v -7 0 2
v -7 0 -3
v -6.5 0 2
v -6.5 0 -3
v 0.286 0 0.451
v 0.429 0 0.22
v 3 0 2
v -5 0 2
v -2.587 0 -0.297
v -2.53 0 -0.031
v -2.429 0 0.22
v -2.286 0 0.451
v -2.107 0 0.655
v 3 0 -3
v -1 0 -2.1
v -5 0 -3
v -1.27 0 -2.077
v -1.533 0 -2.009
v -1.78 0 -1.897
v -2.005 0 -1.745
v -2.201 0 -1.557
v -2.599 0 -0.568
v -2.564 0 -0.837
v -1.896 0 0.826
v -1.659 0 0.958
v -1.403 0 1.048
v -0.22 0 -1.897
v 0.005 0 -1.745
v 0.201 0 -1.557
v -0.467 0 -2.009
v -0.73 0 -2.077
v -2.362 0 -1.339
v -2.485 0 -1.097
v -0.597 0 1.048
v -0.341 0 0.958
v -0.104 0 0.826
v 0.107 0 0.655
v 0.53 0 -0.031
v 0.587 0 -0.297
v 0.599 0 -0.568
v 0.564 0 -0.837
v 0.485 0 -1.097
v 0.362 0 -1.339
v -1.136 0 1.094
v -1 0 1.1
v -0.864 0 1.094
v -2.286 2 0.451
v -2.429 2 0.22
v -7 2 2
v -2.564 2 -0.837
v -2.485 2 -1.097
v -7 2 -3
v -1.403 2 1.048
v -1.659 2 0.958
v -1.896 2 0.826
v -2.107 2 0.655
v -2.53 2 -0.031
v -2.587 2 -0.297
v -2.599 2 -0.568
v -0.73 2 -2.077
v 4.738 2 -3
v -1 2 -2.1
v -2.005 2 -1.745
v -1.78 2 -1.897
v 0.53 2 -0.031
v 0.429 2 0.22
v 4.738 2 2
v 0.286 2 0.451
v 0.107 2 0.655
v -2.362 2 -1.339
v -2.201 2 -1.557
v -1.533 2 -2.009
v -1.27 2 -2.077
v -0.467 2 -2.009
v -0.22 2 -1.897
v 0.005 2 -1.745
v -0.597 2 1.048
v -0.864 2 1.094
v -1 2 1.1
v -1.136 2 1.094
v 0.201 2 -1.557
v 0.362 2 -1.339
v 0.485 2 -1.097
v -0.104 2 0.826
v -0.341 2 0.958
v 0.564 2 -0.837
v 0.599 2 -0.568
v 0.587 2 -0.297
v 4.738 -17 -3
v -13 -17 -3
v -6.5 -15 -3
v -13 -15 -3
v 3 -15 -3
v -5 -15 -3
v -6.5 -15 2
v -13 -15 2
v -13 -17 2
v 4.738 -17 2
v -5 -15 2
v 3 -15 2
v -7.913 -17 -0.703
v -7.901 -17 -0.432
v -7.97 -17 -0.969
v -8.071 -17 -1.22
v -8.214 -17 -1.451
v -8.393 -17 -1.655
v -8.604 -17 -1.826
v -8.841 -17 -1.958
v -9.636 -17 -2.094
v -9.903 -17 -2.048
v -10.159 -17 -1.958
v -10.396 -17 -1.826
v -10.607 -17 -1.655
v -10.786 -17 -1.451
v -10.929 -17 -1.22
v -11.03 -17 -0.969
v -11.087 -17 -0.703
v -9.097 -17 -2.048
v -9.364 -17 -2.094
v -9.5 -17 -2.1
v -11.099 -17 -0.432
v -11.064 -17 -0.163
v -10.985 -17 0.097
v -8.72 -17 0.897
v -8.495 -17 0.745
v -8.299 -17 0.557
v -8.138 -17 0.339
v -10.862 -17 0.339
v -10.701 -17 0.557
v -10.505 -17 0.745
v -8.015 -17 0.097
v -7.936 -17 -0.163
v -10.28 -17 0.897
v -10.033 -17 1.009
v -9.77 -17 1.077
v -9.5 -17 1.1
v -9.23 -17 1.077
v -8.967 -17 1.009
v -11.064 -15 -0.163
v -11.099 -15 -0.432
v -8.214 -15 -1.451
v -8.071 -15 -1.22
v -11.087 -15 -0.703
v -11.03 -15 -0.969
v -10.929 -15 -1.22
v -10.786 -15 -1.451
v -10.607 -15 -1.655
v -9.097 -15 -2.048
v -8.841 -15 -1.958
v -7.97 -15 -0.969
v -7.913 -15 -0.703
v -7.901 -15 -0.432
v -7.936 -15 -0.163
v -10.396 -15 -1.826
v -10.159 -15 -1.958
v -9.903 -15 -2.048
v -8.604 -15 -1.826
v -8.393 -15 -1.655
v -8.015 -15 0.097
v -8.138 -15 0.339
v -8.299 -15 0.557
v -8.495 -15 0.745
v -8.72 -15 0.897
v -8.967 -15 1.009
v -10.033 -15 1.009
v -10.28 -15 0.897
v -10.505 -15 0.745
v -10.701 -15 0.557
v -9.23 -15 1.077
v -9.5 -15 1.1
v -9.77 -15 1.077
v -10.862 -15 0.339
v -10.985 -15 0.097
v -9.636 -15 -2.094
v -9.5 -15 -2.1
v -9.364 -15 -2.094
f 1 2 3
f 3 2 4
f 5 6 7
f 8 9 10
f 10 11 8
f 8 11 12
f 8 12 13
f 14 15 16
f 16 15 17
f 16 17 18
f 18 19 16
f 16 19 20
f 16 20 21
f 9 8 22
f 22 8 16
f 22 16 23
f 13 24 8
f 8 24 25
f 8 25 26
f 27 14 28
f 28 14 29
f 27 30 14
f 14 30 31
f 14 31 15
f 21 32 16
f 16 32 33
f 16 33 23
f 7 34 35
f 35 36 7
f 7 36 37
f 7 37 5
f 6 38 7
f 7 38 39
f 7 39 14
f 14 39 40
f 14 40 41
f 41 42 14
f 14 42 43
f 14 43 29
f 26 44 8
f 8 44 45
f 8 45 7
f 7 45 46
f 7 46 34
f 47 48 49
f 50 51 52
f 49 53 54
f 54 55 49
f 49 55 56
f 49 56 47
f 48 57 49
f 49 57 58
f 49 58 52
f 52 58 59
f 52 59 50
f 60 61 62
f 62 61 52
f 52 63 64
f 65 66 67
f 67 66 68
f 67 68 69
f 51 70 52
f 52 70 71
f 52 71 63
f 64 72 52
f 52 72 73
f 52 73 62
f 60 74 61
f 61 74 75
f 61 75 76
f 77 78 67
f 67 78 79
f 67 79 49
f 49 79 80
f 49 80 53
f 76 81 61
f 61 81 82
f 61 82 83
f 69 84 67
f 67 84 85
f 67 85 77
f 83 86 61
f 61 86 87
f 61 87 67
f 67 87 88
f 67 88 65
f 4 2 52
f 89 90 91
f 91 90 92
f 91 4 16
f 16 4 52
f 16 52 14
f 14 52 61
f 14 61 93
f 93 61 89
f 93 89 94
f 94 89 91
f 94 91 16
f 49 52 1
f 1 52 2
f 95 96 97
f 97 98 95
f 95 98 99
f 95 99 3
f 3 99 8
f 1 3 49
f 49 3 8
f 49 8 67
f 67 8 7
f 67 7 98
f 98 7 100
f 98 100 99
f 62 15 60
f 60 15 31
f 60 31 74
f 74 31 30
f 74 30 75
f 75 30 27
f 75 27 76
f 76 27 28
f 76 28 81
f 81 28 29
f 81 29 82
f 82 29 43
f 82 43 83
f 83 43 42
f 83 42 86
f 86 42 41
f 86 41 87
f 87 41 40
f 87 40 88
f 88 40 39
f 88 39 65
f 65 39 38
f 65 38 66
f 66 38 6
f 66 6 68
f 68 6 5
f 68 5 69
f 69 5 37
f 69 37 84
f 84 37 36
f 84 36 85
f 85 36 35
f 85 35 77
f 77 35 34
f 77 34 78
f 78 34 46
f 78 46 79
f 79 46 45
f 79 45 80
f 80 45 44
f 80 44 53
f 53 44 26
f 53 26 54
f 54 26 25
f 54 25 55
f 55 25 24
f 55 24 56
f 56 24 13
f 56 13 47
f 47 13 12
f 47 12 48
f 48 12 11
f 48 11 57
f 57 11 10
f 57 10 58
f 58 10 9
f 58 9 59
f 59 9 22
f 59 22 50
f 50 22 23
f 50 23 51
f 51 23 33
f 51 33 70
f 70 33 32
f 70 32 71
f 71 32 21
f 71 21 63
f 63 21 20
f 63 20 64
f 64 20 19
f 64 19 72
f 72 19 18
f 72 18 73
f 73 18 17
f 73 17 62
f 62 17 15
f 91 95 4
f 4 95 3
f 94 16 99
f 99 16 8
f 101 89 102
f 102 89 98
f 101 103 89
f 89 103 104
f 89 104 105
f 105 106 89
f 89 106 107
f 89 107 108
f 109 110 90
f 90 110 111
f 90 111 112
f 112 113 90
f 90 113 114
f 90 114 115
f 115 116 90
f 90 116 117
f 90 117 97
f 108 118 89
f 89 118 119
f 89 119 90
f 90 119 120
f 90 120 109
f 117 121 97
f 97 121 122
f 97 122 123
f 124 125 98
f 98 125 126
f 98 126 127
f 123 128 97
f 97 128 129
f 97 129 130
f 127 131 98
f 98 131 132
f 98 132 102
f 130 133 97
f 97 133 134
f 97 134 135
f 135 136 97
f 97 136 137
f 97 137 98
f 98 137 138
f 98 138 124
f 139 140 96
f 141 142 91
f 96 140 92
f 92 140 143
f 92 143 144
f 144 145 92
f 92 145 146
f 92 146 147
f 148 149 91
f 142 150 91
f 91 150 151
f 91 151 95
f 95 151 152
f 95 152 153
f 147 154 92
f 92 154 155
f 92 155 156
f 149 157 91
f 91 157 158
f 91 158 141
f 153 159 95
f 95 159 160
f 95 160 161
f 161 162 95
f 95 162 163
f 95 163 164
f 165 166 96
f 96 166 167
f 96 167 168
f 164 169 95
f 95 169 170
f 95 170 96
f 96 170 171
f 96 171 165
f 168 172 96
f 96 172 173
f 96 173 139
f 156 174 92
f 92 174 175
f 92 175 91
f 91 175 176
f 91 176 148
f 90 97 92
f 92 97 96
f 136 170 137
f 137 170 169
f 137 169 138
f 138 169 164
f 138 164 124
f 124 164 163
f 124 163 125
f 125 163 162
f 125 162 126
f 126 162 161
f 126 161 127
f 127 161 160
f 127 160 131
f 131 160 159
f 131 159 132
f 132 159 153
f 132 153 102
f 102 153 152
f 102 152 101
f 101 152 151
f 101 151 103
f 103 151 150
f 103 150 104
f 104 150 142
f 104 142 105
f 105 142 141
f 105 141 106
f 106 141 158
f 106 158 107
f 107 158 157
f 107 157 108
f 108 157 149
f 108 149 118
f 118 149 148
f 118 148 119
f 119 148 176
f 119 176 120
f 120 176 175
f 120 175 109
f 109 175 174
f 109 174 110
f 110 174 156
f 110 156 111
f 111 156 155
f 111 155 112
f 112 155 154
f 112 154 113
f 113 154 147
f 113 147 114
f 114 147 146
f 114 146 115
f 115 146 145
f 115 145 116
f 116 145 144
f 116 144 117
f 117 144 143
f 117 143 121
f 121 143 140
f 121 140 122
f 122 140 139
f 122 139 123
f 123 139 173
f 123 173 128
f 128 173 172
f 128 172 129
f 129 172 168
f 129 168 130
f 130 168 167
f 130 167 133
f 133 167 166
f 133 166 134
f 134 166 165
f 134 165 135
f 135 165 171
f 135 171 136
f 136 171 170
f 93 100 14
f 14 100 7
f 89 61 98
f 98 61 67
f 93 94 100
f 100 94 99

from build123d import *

# Parameters (mm, degrees)
SKETCH1_W           = 10
SKETCH1_H           = 5
SKETCH1_R           = 1.6
BOSS_EXTRUDE2_DEPTH = 2
SKETCH2_W           = 1.5
SKETCH2_H           = 5
BOSS_EXTRUDE3_DEPTH = 15
SKETCH3_W           = 8
SKETCH3_H           = 5
SKETCH3_R           = 1.6
BOSS_EXTRUDE4_DEPTH = 2
BOSS_EXTRUDE5_DEPTH = 5


with BuildPart() as part:
    # Sketch1 → Boss-Extrude2 (new body)
    with BuildSketch(Plane(origin=(0, 0, 0), x_dir=(1, 0, 0), z_dir=(0, 1, 0))):
        with Locations((-2, 0.5)):
            Rectangle(SKETCH1_W, SKETCH1_H)
        with Locations((-1, 0.5)):
            Circle(SKETCH1_R, mode=Mode.SUBTRACT)
    extrude(amount=BOSS_EXTRUDE2_DEPTH)

    # Sketch2 → Boss-Extrude3 (add)
    with BuildSketch(Plane.XZ):
        with Locations((-5.75, -0.5)):
            Rectangle(SKETCH2_W, SKETCH2_H)
    extrude(amount=BOSS_EXTRUDE3_DEPTH)

    # Sketch3 → Boss-Extrude4 (add)
    with BuildSketch(Plane.XZ.offset(15)):
        with Locations((-9, -0.5)):
            Rectangle(SKETCH3_W, SKETCH3_H)
        with Locations((-9.5, -0.5)):
            Circle(SKETCH3_R, mode=Mode.SUBTRACT)
    extrude(amount=BOSS_EXTRUDE4_DEPTH)

    # Sketch4 → Boss-Extrude5 (add)
    with BuildSketch(Plane.XY.offset(2)):
        Polygon((4.737702607, -17), (4.737702607, 2), (3, 2), (3, -15), (-5, -15), (-5, -17), align=None)
    extrude(amount=-BOSS_EXTRUDE5_DEPTH)


solid = part.part
